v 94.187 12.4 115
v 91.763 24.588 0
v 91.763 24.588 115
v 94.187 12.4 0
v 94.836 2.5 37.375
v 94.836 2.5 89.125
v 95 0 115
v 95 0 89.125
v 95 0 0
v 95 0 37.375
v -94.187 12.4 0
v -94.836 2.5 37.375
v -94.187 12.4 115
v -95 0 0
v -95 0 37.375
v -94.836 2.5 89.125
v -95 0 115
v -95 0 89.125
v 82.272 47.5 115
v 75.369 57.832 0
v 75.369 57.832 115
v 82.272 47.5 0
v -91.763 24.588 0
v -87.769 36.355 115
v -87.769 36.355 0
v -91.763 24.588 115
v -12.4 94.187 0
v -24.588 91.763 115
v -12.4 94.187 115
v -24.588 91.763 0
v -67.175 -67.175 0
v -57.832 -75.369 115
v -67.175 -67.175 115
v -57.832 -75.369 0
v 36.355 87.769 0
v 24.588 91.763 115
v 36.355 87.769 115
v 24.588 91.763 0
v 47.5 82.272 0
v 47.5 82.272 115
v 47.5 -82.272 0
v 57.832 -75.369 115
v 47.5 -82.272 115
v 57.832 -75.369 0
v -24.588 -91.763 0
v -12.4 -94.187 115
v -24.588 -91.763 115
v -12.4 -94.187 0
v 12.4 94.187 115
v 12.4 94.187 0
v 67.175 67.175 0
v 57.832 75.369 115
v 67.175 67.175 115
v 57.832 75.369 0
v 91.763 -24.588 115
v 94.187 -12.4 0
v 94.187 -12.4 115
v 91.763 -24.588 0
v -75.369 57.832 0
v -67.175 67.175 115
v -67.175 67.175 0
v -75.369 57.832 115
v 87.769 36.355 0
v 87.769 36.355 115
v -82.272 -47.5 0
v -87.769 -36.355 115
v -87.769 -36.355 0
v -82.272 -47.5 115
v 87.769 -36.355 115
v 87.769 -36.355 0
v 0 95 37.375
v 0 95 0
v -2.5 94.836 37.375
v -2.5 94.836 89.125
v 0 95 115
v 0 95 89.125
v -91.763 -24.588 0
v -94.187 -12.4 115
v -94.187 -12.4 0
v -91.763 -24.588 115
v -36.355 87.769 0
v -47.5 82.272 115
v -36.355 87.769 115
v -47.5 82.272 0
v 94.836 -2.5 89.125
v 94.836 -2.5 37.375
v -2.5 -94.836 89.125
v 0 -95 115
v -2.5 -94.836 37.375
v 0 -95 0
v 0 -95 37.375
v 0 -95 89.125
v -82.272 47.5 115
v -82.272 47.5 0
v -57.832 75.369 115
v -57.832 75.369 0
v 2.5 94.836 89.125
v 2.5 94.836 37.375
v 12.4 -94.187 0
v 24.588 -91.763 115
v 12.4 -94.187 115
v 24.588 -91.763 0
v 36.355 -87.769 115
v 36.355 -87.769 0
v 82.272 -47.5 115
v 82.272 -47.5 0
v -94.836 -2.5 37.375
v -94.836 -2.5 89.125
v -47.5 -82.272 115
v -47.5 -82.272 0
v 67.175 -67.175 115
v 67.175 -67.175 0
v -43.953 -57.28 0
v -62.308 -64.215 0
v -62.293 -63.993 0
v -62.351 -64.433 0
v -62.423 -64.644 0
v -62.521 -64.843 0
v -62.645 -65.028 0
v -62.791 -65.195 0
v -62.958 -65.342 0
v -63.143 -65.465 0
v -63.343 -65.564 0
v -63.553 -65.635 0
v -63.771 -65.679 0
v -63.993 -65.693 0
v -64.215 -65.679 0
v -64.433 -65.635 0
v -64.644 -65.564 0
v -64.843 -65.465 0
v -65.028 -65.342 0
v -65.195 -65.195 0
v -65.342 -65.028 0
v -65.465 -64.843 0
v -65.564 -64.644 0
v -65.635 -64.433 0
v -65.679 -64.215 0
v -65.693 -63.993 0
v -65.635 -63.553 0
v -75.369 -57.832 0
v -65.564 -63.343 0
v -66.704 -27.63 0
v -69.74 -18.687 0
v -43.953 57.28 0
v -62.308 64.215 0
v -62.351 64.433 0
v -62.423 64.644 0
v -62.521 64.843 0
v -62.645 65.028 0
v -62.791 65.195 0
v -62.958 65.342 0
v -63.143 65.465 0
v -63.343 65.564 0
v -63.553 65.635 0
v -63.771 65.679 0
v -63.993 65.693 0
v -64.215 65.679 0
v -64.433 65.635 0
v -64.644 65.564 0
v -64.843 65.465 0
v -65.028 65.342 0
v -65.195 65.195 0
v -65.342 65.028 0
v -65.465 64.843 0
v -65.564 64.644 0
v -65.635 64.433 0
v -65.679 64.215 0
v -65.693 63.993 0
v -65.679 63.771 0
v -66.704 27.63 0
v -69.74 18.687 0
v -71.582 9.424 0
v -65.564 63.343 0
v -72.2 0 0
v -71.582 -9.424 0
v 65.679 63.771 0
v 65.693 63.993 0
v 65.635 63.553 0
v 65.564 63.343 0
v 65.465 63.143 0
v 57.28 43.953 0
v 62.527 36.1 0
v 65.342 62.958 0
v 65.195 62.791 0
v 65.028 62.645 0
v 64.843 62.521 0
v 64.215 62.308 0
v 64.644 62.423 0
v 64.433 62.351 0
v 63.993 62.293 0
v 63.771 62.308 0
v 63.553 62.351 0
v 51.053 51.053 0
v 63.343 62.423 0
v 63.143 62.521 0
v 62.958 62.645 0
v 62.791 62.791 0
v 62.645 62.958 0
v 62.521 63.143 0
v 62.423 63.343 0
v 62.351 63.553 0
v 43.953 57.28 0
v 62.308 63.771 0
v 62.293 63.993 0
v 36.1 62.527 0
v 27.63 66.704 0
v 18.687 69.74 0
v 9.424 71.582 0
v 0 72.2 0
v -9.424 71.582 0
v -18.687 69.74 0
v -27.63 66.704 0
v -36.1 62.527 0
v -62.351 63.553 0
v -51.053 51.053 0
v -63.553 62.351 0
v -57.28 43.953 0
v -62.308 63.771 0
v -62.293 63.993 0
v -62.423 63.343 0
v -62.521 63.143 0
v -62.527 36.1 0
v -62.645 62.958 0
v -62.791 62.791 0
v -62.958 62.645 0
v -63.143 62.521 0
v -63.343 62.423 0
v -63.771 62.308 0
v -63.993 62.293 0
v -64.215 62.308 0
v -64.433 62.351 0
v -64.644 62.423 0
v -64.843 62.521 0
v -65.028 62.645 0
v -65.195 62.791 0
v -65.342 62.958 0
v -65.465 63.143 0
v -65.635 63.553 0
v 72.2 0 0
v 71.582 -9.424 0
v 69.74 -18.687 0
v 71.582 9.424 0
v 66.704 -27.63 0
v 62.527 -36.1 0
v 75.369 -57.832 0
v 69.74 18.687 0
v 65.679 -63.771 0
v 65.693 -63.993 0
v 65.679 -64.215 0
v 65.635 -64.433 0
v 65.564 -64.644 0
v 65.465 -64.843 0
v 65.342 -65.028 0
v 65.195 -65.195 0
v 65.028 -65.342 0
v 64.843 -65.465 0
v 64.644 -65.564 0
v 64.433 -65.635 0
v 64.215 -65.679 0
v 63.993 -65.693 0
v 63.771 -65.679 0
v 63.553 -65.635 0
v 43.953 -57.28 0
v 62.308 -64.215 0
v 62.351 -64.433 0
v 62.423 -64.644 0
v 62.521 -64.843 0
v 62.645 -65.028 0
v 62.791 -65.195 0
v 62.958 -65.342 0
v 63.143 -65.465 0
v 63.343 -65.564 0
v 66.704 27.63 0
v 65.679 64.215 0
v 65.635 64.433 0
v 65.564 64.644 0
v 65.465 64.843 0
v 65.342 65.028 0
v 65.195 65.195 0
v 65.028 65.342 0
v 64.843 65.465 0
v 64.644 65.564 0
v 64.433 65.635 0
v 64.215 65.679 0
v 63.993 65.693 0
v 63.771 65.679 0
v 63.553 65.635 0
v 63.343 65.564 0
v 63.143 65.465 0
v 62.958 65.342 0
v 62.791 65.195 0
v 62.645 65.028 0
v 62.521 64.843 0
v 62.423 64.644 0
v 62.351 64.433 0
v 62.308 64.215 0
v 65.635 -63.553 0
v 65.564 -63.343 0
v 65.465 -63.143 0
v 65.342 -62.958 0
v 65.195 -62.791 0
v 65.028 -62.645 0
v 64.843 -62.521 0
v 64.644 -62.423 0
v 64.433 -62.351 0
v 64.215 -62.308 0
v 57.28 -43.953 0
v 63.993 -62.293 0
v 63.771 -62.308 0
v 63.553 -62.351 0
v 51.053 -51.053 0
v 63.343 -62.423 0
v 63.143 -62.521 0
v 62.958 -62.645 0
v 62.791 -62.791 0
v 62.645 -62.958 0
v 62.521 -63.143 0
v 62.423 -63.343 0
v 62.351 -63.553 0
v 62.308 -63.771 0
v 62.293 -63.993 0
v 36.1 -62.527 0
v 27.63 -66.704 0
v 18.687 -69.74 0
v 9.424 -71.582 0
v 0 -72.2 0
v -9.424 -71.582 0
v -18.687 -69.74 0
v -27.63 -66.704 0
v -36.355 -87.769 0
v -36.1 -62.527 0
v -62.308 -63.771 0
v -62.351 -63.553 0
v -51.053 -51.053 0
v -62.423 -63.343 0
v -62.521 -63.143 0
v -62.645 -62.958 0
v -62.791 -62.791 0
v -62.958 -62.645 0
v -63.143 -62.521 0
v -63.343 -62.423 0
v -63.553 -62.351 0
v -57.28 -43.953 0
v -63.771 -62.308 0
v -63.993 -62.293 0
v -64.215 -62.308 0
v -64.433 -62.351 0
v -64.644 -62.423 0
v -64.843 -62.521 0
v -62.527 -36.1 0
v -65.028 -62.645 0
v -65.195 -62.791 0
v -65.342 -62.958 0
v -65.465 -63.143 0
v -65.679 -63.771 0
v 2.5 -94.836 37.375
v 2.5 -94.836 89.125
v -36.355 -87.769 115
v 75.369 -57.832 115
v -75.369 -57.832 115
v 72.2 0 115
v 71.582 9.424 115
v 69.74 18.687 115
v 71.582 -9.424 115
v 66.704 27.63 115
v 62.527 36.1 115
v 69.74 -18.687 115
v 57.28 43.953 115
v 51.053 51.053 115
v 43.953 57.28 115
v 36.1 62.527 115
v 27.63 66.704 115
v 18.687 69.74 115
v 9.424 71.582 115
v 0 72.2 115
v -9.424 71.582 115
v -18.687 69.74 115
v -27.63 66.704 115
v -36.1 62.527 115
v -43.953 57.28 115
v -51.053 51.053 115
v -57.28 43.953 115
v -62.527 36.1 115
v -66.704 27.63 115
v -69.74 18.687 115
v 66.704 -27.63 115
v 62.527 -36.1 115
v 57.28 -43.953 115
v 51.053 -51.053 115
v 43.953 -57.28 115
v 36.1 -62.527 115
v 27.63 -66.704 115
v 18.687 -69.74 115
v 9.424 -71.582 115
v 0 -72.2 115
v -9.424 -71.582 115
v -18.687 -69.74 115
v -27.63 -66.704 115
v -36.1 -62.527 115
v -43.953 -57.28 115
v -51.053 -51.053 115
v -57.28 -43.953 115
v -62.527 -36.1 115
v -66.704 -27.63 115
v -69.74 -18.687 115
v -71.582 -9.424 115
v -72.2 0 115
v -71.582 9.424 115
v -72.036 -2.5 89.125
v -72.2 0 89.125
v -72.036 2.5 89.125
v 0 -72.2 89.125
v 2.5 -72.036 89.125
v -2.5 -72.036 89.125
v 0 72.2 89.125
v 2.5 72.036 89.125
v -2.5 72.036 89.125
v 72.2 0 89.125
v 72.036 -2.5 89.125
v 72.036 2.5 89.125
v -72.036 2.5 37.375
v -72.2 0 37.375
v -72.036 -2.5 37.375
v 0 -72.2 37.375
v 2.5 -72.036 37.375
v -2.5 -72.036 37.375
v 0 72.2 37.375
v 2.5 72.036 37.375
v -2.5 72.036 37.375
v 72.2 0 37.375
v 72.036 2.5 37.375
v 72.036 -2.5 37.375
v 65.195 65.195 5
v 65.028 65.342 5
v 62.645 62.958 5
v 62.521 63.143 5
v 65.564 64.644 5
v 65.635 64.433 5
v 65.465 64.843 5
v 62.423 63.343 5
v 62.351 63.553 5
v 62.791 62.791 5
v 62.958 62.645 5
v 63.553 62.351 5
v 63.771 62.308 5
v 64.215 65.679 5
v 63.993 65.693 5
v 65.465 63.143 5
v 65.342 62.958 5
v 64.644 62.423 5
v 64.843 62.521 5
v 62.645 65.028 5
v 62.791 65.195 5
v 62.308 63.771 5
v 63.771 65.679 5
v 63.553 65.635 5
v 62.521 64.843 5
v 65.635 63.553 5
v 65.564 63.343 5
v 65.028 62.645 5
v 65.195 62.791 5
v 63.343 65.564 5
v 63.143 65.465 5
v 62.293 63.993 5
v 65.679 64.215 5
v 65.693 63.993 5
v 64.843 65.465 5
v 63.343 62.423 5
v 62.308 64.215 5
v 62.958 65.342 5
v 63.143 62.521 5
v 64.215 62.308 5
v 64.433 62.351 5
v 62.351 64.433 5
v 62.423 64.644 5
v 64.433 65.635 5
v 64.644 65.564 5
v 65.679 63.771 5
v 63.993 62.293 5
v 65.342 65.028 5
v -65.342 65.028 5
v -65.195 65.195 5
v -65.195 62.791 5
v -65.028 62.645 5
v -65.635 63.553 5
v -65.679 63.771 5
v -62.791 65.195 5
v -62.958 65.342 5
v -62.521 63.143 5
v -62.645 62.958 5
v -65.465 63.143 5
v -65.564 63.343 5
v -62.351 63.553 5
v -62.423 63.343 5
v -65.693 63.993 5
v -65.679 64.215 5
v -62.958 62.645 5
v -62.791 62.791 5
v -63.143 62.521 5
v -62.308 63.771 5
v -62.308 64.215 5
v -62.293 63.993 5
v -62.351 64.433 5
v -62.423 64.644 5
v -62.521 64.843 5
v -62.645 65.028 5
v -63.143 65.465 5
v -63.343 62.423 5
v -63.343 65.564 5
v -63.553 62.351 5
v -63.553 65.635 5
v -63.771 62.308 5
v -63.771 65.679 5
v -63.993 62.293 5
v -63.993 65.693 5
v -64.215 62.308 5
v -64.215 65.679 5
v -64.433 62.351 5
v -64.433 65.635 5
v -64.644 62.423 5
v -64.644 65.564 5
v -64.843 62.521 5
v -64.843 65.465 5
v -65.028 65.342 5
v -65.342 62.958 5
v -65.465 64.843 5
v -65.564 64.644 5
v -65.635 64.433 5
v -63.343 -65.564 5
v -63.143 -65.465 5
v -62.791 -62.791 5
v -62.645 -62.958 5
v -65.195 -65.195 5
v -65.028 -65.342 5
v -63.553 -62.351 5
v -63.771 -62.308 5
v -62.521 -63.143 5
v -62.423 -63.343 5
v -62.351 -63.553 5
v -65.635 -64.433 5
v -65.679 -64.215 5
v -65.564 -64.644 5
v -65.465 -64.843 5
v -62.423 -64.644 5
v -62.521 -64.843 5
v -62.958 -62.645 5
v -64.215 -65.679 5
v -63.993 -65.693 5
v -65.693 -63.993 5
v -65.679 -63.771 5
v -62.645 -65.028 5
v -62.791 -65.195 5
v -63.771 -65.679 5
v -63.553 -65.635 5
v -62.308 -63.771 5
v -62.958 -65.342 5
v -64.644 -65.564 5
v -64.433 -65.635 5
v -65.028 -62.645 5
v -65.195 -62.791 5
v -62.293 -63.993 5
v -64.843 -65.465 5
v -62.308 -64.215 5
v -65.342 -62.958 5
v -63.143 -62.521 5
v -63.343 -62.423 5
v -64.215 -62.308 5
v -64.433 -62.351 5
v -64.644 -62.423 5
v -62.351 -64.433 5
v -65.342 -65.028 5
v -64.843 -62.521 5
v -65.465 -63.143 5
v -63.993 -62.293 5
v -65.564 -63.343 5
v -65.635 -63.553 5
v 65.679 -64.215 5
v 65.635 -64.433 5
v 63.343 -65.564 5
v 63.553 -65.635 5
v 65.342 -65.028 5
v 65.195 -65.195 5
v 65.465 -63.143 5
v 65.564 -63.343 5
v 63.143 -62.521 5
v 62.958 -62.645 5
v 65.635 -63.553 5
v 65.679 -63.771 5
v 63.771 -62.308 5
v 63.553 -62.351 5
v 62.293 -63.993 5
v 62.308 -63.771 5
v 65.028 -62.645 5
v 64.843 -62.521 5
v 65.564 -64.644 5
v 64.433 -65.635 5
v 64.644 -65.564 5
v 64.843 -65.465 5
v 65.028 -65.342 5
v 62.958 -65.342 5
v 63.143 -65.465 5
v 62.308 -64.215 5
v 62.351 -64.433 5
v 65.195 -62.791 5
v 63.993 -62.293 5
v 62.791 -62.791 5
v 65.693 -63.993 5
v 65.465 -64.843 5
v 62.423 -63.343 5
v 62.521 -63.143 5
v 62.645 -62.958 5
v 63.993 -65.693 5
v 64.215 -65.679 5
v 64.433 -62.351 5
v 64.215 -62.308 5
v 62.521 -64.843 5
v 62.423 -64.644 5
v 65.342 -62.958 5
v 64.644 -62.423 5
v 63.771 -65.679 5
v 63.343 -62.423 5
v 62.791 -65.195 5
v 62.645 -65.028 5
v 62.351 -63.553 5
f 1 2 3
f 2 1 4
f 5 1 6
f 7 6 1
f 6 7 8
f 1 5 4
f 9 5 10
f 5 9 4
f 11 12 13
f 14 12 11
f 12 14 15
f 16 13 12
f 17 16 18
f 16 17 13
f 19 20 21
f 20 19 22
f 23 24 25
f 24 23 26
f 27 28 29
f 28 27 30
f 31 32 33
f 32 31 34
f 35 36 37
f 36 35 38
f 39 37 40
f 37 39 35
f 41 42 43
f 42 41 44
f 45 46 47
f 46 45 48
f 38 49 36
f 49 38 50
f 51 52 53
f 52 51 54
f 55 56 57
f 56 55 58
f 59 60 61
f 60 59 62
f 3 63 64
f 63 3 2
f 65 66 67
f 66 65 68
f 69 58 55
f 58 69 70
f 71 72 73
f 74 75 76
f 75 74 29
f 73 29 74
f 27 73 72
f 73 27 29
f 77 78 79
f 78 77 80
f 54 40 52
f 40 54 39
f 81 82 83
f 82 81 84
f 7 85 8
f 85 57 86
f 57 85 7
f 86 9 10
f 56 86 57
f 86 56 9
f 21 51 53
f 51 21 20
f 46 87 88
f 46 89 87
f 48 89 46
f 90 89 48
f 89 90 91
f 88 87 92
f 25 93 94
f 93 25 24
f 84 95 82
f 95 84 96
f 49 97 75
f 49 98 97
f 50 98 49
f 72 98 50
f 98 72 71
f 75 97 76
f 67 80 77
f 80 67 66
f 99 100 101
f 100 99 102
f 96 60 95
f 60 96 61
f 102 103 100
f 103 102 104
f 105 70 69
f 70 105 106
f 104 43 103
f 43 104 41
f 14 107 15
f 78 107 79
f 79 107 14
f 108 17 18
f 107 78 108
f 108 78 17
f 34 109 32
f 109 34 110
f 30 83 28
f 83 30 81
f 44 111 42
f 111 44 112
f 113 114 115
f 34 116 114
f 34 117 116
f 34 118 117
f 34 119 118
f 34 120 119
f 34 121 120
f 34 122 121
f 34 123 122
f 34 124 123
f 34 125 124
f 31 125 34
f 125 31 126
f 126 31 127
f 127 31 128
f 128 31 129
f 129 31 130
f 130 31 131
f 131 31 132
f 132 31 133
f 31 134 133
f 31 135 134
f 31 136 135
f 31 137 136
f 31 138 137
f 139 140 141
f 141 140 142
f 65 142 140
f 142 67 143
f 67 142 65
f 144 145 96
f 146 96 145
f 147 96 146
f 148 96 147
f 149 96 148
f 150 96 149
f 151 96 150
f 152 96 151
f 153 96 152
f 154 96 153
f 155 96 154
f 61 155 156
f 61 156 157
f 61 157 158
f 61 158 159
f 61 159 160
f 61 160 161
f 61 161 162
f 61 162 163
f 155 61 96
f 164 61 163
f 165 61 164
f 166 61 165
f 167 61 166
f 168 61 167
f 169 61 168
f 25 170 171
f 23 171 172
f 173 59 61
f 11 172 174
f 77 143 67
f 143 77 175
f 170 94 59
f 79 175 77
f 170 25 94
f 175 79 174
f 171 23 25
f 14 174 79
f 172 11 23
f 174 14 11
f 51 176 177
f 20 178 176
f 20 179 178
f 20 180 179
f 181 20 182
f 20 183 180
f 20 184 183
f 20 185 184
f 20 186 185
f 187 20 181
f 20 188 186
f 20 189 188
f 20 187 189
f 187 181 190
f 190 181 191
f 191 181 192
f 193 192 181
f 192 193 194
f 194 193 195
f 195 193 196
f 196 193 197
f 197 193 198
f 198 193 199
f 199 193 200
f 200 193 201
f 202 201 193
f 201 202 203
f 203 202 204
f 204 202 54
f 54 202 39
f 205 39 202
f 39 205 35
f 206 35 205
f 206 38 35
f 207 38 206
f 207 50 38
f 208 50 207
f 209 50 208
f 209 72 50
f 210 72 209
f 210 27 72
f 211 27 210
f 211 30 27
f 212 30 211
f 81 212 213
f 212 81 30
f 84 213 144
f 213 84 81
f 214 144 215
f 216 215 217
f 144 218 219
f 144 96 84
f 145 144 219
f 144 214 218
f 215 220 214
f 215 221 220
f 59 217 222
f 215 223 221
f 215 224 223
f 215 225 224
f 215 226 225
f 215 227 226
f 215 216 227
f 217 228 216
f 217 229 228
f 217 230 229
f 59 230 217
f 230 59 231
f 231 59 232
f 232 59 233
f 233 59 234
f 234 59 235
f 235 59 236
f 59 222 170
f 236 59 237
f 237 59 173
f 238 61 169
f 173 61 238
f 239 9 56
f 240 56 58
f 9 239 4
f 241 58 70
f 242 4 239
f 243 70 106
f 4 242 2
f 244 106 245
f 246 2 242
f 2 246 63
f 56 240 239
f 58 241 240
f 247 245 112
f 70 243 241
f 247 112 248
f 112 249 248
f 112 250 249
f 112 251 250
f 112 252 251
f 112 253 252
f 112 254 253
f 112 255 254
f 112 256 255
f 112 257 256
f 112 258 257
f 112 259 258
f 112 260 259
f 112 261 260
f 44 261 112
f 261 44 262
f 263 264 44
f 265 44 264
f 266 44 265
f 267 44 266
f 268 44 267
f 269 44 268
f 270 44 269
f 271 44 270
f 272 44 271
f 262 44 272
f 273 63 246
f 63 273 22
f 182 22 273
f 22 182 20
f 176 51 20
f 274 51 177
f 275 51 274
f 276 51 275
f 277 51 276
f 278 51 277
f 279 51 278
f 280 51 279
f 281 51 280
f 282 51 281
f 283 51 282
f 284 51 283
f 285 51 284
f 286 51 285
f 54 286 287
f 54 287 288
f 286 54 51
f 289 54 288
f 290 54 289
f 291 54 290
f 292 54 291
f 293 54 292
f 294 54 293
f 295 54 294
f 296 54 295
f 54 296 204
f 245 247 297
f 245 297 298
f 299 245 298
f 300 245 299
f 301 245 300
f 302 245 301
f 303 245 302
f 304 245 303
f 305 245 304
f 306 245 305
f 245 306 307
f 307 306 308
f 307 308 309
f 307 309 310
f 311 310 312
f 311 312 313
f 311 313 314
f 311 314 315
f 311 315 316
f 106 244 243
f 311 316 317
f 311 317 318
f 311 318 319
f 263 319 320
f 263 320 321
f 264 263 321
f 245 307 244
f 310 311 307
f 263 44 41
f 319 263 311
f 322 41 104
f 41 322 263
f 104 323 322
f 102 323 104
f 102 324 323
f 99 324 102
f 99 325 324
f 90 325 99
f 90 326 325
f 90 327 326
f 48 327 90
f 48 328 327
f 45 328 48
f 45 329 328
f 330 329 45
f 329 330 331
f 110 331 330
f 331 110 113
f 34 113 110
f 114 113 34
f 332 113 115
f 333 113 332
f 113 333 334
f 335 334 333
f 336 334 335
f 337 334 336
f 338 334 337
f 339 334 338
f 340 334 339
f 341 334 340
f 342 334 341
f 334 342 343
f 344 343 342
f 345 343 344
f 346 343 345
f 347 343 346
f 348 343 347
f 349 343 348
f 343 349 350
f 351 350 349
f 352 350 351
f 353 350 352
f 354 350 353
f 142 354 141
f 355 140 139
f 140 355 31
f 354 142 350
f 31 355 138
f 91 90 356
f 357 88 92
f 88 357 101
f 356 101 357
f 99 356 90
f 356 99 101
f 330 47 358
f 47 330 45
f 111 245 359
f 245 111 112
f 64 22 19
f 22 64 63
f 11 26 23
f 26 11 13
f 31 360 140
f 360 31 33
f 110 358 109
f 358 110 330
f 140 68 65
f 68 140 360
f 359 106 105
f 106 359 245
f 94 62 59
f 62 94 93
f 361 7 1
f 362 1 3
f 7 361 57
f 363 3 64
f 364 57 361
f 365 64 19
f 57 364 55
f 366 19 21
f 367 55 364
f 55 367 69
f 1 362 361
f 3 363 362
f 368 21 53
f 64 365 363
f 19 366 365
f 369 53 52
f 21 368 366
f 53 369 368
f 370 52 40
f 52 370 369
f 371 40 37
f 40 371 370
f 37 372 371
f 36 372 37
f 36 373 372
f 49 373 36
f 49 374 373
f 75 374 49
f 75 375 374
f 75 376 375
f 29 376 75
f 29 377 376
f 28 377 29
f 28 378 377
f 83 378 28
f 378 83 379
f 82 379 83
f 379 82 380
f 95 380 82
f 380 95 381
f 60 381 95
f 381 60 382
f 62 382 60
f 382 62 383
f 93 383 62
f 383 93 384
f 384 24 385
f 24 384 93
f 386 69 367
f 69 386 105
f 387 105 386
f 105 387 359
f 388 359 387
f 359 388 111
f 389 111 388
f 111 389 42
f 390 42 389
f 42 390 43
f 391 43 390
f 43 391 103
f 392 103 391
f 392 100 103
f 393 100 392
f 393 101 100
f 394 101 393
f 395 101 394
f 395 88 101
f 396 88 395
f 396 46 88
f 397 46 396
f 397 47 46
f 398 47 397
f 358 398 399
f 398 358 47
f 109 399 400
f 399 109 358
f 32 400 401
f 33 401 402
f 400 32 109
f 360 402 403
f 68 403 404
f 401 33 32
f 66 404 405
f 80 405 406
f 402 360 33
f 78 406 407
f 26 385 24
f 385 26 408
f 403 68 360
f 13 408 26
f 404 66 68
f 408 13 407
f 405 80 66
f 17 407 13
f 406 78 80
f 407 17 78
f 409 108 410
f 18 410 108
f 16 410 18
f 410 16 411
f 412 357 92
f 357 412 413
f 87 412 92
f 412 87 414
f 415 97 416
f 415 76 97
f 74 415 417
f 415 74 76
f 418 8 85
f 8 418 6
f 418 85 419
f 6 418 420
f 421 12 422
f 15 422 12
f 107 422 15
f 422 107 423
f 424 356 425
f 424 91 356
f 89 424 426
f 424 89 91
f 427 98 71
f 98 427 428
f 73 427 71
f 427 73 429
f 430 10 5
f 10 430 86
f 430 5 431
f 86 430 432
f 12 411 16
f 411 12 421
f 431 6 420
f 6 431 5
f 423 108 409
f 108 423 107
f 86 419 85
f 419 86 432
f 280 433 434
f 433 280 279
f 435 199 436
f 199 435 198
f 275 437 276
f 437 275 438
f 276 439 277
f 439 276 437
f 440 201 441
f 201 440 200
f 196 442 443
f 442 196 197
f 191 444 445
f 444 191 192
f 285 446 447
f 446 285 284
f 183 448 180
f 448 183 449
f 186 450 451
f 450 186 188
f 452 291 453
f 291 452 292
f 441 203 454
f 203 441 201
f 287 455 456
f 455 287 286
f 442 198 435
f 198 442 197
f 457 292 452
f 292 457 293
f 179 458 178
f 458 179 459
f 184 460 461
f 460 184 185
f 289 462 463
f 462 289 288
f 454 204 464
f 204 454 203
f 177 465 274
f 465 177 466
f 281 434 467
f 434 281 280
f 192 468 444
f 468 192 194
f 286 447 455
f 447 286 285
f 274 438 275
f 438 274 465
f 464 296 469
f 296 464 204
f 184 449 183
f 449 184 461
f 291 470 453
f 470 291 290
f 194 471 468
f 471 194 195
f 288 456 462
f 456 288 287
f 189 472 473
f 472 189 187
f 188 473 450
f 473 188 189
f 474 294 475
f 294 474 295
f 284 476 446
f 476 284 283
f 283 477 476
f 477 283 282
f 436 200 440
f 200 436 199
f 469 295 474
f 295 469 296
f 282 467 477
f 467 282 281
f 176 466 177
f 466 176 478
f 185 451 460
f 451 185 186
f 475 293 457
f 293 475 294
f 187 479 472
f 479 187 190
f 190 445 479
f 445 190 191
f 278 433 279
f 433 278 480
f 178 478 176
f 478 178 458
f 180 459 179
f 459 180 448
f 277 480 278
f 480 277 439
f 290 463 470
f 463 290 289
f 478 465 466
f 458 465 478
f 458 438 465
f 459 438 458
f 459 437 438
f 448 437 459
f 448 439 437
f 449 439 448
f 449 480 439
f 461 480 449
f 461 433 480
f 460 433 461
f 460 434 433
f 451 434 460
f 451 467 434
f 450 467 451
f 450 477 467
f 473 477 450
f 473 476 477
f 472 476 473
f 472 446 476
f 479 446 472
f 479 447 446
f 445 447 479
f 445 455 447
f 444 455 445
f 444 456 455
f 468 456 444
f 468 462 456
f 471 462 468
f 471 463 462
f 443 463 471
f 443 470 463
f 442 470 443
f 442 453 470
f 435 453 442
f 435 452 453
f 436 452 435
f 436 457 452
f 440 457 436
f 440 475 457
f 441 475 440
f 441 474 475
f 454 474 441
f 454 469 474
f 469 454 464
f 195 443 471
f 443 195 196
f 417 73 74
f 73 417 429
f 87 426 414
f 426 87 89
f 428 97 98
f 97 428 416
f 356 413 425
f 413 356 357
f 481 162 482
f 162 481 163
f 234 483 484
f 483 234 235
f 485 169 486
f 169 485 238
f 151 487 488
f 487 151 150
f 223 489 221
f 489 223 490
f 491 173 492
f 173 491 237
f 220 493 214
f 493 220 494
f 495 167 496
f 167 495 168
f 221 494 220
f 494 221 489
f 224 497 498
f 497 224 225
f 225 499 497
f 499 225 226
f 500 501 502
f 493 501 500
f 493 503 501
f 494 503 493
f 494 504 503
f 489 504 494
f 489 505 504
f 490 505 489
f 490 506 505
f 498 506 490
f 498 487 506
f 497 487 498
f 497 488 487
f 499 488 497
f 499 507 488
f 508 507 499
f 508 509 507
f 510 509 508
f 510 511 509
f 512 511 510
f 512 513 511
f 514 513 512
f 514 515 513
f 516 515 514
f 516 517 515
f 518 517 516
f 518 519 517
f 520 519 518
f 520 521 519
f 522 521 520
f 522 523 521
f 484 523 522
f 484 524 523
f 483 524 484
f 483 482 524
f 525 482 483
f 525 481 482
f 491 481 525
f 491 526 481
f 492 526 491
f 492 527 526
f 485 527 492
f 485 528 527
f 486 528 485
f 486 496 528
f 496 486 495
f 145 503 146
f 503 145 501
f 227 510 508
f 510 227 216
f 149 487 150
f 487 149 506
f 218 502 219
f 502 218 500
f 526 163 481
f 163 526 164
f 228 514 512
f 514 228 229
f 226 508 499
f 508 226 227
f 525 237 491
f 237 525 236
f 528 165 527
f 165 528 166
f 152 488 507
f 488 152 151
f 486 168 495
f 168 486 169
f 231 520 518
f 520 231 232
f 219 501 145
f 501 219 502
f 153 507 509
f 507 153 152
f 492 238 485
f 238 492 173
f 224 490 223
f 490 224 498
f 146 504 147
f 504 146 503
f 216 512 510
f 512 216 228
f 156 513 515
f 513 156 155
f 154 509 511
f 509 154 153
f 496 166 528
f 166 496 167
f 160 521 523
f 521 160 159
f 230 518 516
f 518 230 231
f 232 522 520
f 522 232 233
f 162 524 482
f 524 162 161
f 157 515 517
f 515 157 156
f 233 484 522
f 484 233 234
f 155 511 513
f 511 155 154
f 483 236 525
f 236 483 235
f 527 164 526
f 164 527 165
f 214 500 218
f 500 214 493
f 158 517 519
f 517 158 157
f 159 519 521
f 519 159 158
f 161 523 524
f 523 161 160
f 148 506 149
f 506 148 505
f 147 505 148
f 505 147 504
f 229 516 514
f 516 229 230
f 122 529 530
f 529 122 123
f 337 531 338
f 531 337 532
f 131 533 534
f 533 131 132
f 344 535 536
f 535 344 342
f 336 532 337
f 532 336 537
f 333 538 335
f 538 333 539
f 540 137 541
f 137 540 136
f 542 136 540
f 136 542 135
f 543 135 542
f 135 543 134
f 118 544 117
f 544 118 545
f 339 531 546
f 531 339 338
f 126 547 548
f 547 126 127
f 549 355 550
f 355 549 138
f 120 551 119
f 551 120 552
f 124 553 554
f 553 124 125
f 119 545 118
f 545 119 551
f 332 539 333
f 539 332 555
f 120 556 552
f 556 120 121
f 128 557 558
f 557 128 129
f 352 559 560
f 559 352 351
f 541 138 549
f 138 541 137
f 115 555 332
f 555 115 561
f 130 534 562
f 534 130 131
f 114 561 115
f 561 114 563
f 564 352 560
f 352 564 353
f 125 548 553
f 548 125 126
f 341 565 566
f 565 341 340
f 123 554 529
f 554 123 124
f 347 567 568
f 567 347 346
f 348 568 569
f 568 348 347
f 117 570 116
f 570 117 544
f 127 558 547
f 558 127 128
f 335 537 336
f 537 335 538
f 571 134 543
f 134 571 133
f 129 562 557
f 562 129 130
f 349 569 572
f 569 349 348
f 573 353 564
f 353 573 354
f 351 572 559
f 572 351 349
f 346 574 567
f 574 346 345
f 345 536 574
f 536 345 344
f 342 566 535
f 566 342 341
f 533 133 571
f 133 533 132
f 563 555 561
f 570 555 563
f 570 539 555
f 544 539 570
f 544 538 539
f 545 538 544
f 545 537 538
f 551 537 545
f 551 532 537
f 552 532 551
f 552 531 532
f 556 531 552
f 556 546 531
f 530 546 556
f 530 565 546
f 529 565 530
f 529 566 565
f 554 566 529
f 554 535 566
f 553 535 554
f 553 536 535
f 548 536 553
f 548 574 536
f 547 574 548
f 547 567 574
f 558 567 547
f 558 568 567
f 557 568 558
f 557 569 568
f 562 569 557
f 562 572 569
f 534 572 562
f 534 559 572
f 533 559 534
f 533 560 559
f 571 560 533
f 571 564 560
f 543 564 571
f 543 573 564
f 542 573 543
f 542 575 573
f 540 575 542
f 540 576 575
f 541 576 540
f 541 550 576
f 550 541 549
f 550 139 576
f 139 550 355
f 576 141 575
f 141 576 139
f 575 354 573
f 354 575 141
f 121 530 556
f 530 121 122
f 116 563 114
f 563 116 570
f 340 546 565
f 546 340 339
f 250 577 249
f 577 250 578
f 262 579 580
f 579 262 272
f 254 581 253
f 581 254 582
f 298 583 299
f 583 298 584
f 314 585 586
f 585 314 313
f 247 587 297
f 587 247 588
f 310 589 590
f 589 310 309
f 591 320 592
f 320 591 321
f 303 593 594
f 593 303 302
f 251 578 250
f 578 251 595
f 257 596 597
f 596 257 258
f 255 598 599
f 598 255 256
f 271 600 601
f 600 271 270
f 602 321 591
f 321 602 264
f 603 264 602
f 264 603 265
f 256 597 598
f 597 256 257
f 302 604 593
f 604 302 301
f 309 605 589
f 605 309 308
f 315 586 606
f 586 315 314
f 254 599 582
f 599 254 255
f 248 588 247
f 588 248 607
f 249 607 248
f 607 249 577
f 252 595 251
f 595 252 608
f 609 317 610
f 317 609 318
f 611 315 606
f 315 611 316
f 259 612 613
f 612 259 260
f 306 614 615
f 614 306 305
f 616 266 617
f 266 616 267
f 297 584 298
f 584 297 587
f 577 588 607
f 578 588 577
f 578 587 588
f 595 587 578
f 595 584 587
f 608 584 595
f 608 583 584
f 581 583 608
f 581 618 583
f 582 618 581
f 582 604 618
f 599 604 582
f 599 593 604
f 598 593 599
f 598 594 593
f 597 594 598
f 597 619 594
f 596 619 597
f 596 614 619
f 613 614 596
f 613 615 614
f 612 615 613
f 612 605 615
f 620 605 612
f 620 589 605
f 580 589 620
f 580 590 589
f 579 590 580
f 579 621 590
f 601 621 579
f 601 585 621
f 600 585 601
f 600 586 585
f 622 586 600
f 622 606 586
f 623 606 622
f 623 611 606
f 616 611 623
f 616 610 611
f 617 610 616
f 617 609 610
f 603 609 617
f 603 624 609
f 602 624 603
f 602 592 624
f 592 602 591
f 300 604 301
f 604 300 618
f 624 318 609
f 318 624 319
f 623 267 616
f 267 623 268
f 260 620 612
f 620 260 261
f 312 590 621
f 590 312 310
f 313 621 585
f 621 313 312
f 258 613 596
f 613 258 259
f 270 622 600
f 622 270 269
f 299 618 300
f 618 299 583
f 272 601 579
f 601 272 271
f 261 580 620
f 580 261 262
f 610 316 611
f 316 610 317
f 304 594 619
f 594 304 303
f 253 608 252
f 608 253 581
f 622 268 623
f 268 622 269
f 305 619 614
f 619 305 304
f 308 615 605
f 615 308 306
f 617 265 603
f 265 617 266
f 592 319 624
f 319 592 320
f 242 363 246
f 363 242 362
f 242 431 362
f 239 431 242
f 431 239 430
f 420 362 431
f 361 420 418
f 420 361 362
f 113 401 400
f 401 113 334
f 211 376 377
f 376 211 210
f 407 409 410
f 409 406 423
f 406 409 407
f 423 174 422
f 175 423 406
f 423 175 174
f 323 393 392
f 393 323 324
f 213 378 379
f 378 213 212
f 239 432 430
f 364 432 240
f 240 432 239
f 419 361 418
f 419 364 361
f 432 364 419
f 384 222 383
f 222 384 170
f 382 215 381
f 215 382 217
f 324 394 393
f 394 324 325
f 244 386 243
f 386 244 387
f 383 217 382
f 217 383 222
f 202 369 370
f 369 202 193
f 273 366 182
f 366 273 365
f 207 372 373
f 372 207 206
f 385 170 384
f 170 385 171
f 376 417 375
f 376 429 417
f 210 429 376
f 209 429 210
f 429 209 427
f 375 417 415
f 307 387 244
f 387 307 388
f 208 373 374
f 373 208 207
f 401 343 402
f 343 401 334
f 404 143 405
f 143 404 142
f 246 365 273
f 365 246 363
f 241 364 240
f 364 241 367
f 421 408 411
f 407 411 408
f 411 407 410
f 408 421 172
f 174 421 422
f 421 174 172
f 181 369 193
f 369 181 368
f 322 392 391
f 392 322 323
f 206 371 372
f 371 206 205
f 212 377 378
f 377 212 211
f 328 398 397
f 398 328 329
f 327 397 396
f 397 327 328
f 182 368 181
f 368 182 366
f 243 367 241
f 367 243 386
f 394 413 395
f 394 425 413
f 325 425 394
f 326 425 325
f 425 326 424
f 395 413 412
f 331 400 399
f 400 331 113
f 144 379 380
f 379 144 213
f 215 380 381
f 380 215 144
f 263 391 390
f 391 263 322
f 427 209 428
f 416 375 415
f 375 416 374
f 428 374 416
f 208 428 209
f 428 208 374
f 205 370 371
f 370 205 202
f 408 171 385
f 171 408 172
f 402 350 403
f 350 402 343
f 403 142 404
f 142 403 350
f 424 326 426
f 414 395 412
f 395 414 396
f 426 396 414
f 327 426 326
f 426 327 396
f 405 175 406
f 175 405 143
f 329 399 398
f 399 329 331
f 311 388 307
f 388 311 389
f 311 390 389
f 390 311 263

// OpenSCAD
// ============================================================================
// Get Me An Alt — Parametric OpenSCAD Module
// Part: PRT-07 — Coanda Airfoil Loop — Lower Plenum Split Ring (coanda-airfoil-lower)
// Function: Forms the lower 180° arc of the Coanda air-multiplier nozzle.
// Target Bounding Box (mm): [190, 190, 115]
// Print Material: Matte PLA+ | Min Wall: >= 1.6mm | Tolerance: 0.2mm
// ============================================================================
$fn = 48;
part_width = 190;
part_depth = 190;
part_height = 115;
wall_thickness = 3;
floor_thickness = 3;
corner_radius = 4;
tolerance = 0.2;
m3_clearance_d = 3.4; // M3 screw clearance hole (3.0mm + 2*0.2mm)

module rounded_rect_prism(w, d, h, r) {
  cr = max(0.5, min(r, min(w, d) / 2 - 0.1));
  linear_extrude(height = h)
    offset(r = cr)
      offset(r = -cr)
        square([w, d], center = true);
}

module part_coanda_airfoil_lower() {
  difference() {
    union() {
      // Base mounting flange
      cylinder(h = 4, r = 95);
      // Cylindrical isolation collar
      cylinder(h = part_height, r = 95);
    }
    // Central bore with 0.2mm fit tolerance
    translate([0, 0, -1])
      cylinder(h = part_height + 2, r = 72 + tolerance);
    // Side water intake relief slots
    for (ang = [0, 90, 180, 270]) {
      rotate([0, 0, ang])
        translate([0, 0, part_height * 0.55])
          cube([209, 5.0, part_height * 0.45], center = true);
      // Flange M3 anchor holes
      rotate([0, 0, ang + 45])
        translate([90.5, 0, -1])
          cylinder(h = 6, d = m3_clearance_d);
    }
  }
}

part_coanda_airfoil_lower();
